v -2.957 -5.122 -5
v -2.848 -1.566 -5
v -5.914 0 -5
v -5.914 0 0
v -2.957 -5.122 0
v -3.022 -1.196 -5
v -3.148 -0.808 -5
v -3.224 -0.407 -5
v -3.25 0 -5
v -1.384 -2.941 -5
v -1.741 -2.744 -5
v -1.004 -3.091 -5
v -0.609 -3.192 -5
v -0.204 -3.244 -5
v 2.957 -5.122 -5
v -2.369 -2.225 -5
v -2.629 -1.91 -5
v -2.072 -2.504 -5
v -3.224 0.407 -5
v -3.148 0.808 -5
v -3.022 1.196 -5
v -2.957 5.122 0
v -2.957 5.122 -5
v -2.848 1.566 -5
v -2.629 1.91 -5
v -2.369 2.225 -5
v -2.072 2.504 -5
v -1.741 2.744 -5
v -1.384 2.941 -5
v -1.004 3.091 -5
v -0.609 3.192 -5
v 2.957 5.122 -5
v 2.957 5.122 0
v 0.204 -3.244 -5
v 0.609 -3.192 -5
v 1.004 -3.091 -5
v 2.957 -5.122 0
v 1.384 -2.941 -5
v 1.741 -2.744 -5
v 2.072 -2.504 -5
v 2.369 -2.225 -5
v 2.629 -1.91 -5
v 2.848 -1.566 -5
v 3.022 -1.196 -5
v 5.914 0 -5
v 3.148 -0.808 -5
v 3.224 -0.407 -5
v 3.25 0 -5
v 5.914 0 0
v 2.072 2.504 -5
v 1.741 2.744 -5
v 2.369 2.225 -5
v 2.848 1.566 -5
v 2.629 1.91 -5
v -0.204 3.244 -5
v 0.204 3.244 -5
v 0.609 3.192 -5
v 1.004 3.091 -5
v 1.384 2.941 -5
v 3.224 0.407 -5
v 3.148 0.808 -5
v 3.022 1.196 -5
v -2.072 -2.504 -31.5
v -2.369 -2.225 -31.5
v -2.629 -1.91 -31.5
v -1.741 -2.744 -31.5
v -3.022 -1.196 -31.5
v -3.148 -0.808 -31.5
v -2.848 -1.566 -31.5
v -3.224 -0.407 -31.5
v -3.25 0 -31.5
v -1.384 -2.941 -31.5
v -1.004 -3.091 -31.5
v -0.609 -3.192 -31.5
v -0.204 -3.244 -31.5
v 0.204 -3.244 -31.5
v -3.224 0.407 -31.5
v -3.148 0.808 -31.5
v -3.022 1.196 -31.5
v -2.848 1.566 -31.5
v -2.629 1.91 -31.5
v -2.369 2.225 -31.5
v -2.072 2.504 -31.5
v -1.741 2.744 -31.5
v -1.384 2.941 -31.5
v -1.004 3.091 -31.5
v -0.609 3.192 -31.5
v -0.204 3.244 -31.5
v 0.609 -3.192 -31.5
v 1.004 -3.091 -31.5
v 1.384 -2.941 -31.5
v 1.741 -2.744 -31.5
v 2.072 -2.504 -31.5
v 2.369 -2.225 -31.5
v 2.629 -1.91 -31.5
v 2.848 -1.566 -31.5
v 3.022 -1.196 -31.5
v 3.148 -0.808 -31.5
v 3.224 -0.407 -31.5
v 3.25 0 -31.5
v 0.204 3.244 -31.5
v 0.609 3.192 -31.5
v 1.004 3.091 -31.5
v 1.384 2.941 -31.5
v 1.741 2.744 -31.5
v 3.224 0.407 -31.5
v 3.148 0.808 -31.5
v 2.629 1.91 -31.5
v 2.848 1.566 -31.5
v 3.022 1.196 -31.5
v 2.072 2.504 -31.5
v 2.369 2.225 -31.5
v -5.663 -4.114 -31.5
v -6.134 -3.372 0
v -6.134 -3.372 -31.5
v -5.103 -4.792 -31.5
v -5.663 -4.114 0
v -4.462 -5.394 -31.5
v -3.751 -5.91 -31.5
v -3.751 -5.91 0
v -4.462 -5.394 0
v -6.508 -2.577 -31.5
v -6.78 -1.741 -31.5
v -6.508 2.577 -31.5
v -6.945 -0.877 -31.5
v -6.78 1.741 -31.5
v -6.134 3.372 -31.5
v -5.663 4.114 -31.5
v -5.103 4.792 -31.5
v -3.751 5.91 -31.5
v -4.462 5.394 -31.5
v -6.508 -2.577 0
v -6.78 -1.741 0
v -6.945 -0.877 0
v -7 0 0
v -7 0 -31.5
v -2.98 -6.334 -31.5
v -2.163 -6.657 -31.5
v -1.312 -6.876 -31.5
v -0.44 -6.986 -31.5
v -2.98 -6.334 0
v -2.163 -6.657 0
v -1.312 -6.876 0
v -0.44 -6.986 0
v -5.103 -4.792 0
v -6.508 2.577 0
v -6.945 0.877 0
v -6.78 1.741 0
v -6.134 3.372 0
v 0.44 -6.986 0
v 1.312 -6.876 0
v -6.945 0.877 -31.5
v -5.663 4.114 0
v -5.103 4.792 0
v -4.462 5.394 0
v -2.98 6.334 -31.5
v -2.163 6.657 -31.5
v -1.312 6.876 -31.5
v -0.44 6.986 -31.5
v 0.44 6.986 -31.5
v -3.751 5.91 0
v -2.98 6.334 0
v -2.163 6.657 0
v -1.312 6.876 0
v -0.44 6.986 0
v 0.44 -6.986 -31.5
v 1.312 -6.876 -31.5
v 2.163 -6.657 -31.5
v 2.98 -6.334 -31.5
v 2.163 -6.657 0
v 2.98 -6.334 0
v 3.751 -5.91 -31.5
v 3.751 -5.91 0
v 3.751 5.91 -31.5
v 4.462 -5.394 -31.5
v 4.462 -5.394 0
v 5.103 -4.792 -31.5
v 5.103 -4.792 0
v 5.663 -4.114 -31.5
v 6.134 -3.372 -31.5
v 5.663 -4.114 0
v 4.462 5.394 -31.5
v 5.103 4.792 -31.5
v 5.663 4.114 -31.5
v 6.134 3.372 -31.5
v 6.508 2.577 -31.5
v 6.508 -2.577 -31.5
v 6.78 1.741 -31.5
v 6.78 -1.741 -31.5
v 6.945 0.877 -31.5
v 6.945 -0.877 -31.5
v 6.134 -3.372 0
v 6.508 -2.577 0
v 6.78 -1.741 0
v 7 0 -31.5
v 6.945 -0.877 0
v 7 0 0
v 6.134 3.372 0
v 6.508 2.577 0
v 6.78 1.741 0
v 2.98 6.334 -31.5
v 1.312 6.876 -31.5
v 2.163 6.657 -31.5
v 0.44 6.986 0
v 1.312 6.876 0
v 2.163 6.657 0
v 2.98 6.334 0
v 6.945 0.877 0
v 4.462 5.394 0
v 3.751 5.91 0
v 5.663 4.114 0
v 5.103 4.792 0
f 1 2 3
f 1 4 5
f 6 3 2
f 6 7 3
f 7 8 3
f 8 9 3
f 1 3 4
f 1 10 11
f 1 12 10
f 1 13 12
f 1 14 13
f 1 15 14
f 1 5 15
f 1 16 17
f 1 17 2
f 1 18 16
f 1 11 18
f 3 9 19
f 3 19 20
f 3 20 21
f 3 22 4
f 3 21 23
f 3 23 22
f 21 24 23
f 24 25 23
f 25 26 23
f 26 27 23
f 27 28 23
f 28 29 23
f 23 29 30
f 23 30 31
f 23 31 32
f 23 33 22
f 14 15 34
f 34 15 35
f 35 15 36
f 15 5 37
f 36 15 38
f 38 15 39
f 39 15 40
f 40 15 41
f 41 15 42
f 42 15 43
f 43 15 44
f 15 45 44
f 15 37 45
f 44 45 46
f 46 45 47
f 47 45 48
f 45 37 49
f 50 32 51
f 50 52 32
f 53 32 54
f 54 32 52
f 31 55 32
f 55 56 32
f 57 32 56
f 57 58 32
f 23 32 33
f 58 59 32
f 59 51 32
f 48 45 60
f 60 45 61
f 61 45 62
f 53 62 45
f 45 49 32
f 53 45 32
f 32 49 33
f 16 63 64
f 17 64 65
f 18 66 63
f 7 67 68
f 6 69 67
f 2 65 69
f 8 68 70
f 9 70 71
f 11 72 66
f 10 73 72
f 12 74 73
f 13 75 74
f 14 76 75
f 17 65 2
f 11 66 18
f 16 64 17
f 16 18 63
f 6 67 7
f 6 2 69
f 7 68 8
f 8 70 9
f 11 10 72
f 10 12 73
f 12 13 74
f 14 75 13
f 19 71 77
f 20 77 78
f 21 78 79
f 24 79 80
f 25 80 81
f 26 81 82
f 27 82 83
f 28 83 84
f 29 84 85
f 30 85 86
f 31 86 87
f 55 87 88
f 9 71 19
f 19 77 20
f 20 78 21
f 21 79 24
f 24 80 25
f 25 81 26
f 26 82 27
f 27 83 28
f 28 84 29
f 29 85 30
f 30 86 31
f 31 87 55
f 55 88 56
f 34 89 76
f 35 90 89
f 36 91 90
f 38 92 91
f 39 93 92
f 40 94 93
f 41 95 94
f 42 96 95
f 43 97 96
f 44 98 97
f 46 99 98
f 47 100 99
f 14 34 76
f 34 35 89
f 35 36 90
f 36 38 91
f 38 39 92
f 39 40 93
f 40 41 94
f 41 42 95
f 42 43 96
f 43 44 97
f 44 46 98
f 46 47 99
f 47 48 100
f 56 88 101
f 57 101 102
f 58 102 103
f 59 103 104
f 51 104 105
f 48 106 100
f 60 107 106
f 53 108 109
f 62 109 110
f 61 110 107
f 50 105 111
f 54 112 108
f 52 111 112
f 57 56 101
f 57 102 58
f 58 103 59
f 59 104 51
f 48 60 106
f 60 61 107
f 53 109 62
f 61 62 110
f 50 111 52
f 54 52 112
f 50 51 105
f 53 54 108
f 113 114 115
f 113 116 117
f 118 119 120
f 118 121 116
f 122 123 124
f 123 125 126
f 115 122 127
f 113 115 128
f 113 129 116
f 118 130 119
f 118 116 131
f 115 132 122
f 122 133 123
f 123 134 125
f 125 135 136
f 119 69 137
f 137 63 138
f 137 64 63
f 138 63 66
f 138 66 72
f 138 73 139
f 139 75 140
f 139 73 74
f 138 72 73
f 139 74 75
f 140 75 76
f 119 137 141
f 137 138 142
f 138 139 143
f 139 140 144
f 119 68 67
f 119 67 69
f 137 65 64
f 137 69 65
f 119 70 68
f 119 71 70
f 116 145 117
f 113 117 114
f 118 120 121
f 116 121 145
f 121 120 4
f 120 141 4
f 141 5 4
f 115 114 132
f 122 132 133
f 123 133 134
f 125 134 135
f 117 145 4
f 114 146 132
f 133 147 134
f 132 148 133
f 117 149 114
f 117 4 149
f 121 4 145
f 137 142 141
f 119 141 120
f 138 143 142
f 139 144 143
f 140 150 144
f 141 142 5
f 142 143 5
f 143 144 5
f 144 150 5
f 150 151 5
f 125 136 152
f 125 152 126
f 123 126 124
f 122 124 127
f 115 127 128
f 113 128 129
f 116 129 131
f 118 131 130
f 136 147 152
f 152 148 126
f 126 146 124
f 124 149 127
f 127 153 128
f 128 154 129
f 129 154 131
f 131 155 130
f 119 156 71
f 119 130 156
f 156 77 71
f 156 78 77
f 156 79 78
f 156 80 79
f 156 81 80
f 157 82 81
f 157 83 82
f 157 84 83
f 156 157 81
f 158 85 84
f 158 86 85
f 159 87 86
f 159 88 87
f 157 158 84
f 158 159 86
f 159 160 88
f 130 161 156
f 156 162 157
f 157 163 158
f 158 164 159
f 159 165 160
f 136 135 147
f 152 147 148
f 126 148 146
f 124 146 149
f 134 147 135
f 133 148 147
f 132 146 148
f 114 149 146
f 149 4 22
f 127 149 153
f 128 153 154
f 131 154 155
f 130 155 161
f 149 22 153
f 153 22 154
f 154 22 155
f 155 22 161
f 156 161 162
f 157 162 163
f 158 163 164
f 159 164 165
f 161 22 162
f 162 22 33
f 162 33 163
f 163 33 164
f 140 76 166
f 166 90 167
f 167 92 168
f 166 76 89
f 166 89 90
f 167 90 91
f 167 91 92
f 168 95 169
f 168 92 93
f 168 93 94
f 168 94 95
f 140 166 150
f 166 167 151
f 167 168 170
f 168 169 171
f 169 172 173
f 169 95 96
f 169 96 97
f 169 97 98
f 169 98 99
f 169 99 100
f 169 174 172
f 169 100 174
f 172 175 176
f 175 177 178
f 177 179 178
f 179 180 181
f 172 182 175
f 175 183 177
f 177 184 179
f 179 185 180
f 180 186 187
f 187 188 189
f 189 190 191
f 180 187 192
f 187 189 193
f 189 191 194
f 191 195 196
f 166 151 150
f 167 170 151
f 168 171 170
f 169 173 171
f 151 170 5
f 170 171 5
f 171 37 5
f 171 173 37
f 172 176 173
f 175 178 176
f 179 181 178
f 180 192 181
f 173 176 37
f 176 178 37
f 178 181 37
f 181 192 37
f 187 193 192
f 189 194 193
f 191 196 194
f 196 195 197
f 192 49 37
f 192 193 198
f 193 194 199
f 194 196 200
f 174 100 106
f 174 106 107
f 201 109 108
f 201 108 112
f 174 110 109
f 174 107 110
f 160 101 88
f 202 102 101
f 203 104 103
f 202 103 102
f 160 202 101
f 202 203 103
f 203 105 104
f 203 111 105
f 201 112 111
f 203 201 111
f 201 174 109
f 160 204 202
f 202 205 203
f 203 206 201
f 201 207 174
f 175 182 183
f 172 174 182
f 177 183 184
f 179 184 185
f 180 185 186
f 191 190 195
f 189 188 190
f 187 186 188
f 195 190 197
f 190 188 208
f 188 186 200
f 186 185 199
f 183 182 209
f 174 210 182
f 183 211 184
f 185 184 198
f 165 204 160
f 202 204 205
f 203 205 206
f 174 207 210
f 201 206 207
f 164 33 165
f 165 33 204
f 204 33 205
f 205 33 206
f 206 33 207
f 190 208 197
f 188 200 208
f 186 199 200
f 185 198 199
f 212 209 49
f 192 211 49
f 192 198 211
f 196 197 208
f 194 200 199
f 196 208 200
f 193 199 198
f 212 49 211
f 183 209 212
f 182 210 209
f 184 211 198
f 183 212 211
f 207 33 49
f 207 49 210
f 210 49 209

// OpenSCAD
$fn = 50;

difference() {
	union() {
		translate(v = [0, 0, -31.5]) {
			cylinder(h = 31.5, r = 7.0);
		}
	}
	union() {
		translate(v = [0, 0, 0]) {
			rotate(a = [0, 0, 0]) {
				difference() {
					union() {
						translate(v = [0, 0, -5]) {
							linear_extrude(height = 5) {
								polygon(points = [[5.914249999999999, 0.0], [2.957125, 5.1218907443321156], [-2.9571249999999982, 5.1218907443321156], [-5.914249999999999, 7.242867331857232e-16], [-2.9571250000000022, -5.121890744332115], [2.9571249999999956, -5.121890744332118]]);
							}
						}
					}
					union();
				}
			}
		}
		#translate(v = [0, 0, -100.0]) {
			cylinder(h = 200, r = 3.25);
		}
	}
}
